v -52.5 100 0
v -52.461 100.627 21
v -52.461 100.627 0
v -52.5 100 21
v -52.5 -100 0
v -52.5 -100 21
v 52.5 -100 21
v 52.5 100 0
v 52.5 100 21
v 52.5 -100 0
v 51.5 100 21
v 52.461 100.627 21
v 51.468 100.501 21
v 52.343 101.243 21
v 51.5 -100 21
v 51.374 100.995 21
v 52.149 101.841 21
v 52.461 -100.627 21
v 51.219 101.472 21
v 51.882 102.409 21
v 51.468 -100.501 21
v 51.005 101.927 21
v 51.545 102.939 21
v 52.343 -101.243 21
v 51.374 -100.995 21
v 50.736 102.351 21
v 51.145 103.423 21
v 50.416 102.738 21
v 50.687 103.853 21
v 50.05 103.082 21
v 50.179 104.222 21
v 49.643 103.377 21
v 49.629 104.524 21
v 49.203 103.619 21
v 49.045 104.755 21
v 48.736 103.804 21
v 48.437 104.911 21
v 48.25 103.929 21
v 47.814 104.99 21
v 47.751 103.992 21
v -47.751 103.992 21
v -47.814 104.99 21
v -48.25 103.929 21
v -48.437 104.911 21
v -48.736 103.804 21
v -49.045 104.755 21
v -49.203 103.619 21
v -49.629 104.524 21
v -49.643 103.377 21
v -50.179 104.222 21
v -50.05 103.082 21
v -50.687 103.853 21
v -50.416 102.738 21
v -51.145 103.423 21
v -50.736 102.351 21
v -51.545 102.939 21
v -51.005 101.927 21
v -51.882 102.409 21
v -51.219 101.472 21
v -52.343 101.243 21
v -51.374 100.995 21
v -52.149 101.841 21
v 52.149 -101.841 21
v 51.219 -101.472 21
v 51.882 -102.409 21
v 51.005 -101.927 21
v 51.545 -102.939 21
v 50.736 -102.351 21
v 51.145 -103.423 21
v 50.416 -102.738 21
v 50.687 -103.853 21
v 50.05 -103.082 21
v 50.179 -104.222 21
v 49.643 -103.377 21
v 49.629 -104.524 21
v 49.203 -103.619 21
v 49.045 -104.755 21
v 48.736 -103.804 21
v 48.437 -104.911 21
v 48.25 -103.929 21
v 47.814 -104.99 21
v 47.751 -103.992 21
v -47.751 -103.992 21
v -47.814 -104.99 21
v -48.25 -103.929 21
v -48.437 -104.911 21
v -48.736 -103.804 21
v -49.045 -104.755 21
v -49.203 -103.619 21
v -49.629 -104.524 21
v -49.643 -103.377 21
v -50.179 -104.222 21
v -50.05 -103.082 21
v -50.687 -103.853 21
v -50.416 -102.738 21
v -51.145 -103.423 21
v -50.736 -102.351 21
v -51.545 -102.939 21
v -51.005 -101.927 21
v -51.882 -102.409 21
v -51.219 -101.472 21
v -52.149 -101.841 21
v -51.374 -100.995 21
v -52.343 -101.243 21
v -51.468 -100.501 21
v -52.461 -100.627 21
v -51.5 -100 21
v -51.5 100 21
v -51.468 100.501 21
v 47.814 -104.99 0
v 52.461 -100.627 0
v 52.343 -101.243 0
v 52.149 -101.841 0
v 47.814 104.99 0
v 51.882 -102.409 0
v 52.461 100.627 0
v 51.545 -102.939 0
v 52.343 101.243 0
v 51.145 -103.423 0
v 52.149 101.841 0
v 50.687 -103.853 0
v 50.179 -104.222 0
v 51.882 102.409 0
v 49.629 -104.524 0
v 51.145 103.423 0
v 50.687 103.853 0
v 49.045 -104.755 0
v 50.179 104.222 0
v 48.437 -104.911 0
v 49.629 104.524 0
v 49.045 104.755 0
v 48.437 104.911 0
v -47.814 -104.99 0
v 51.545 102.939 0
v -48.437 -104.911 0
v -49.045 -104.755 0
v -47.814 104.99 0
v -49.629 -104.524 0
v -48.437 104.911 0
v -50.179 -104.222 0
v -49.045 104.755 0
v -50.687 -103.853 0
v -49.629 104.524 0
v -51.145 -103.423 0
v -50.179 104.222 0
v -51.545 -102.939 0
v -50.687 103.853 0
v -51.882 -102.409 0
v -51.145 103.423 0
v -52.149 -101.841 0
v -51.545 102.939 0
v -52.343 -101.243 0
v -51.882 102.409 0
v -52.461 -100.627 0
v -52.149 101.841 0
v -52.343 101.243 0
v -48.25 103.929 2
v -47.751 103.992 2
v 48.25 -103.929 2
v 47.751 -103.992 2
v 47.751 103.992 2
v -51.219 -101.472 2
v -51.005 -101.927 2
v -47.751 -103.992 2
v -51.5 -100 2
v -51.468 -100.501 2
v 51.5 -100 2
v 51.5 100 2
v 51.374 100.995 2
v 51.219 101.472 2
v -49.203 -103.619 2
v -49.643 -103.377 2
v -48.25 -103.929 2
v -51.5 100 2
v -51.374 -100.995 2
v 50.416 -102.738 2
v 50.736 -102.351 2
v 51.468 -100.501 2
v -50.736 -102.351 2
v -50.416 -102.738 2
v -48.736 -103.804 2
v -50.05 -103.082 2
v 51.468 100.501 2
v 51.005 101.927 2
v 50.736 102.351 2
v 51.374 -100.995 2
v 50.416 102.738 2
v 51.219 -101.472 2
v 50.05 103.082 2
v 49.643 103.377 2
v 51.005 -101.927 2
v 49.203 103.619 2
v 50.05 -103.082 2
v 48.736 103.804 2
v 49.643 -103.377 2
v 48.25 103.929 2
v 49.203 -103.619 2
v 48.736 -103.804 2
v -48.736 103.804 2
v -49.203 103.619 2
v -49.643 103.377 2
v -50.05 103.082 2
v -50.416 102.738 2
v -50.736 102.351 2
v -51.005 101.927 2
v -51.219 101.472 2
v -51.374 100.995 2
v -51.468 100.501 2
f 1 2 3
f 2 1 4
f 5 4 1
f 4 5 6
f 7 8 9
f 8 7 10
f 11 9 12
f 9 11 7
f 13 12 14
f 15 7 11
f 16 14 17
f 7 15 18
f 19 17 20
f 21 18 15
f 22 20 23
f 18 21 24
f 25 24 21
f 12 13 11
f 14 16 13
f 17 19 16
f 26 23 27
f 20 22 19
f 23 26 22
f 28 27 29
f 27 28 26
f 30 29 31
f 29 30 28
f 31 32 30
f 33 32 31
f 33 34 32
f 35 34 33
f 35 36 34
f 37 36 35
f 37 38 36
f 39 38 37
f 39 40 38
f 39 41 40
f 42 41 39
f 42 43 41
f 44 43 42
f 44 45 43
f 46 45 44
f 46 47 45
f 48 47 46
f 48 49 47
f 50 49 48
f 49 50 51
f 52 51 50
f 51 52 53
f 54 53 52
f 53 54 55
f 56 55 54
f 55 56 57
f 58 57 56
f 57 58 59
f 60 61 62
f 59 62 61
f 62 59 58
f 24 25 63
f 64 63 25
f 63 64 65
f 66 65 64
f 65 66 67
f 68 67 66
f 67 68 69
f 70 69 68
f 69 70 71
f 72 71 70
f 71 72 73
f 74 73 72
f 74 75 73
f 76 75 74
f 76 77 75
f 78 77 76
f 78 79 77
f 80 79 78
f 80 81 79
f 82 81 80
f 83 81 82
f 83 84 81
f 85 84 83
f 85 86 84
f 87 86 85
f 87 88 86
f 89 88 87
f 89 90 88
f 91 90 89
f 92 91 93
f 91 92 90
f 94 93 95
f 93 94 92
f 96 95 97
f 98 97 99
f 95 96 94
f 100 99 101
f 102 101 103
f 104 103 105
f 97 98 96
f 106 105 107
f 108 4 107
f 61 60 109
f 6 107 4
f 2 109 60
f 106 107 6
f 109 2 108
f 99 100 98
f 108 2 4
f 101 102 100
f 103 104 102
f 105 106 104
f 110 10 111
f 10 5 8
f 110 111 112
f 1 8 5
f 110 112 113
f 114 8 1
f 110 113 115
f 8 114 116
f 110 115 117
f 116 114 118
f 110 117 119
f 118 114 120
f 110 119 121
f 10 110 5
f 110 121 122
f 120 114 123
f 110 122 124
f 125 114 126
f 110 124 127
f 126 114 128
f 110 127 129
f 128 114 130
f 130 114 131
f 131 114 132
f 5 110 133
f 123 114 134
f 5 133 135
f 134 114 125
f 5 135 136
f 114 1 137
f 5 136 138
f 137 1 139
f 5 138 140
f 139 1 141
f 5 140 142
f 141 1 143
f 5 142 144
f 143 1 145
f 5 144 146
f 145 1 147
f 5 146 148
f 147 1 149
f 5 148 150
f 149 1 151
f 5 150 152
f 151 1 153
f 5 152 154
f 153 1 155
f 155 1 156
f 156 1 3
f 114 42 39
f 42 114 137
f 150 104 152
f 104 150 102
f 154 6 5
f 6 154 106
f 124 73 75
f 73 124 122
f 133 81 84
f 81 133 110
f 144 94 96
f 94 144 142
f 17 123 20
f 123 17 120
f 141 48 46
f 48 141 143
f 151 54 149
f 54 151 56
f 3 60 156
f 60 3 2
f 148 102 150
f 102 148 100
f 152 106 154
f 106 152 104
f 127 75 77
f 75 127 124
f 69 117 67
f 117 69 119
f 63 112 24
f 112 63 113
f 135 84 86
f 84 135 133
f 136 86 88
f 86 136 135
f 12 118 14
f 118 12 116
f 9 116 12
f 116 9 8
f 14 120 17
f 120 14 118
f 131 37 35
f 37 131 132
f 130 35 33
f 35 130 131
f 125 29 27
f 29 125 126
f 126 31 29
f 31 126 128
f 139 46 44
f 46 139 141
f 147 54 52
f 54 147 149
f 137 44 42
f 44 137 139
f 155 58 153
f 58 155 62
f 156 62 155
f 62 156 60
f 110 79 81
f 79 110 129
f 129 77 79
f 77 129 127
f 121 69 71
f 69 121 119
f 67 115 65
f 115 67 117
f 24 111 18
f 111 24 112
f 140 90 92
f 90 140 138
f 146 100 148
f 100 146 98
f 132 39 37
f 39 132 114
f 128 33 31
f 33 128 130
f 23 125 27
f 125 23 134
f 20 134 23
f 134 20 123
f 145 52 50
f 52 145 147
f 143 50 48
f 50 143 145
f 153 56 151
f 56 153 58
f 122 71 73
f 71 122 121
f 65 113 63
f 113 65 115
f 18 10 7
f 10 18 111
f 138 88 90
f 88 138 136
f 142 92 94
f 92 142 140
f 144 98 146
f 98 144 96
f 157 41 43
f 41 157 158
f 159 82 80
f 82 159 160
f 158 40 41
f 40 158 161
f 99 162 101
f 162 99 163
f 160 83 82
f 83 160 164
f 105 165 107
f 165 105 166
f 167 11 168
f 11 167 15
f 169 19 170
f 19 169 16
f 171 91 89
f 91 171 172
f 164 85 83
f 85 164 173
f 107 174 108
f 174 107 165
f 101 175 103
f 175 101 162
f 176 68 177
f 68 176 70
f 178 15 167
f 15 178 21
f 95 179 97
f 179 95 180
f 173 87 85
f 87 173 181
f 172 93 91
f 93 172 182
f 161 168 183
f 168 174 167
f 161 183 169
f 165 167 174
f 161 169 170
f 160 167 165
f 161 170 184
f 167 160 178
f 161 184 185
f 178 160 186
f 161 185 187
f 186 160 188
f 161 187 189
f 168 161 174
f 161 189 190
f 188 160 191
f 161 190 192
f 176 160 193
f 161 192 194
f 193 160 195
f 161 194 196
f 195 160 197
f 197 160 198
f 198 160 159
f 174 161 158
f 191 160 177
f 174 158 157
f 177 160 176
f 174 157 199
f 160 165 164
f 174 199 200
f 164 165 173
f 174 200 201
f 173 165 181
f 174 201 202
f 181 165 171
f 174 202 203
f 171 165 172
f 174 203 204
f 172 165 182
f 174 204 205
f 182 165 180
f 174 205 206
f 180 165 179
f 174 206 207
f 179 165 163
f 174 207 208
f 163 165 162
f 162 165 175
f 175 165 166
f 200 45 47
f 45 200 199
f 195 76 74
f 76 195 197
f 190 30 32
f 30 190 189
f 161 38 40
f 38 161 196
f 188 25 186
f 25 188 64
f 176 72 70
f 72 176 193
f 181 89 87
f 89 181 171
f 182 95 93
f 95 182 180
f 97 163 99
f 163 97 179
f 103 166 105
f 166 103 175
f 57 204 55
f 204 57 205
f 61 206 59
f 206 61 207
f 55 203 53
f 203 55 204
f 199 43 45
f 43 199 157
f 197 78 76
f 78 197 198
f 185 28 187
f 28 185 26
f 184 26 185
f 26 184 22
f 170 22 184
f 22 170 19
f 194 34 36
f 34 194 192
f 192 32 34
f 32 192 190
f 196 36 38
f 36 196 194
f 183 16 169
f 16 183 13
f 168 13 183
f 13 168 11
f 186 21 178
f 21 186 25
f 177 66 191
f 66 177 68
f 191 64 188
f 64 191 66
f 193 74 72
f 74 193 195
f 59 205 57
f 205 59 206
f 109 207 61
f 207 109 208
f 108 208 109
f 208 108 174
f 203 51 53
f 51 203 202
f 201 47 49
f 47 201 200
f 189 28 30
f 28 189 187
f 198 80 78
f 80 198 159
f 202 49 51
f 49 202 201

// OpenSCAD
$fn = 50;


difference() {
	union() {
		hull() {
			translate(v = [-47.5000000000, 100.0000000000, 0]) {
				cylinder(h = 21, r = 5);
			}
			translate(v = [47.5000000000, 100.0000000000, 0]) {
				cylinder(h = 21, r = 5);
			}
			translate(v = [-47.5000000000, -100.0000000000, 0]) {
				cylinder(h = 21, r = 5);
			}
			translate(v = [47.5000000000, -100.0000000000, 0]) {
				cylinder(h = 21, r = 5);
			}
		}
	}
	union() {
		translate(v = [0, 0, 2]) {
			hull() {
				translate(v = [-47.5000000000, 100.0000000000, 0]) {
					cylinder(h = 19, r = 4);
				}
				translate(v = [47.5000000000, 100.0000000000, 0]) {
					cylinder(h = 19, r = 4);
				}
				translate(v = [-47.5000000000, -100.0000000000, 0]) {
					cylinder(h = 19, r = 4);
				}
				translate(v = [47.5000000000, -100.0000000000, 0]) {
					cylinder(h = 19, r = 4);
				}
			}
		}
	}
}
